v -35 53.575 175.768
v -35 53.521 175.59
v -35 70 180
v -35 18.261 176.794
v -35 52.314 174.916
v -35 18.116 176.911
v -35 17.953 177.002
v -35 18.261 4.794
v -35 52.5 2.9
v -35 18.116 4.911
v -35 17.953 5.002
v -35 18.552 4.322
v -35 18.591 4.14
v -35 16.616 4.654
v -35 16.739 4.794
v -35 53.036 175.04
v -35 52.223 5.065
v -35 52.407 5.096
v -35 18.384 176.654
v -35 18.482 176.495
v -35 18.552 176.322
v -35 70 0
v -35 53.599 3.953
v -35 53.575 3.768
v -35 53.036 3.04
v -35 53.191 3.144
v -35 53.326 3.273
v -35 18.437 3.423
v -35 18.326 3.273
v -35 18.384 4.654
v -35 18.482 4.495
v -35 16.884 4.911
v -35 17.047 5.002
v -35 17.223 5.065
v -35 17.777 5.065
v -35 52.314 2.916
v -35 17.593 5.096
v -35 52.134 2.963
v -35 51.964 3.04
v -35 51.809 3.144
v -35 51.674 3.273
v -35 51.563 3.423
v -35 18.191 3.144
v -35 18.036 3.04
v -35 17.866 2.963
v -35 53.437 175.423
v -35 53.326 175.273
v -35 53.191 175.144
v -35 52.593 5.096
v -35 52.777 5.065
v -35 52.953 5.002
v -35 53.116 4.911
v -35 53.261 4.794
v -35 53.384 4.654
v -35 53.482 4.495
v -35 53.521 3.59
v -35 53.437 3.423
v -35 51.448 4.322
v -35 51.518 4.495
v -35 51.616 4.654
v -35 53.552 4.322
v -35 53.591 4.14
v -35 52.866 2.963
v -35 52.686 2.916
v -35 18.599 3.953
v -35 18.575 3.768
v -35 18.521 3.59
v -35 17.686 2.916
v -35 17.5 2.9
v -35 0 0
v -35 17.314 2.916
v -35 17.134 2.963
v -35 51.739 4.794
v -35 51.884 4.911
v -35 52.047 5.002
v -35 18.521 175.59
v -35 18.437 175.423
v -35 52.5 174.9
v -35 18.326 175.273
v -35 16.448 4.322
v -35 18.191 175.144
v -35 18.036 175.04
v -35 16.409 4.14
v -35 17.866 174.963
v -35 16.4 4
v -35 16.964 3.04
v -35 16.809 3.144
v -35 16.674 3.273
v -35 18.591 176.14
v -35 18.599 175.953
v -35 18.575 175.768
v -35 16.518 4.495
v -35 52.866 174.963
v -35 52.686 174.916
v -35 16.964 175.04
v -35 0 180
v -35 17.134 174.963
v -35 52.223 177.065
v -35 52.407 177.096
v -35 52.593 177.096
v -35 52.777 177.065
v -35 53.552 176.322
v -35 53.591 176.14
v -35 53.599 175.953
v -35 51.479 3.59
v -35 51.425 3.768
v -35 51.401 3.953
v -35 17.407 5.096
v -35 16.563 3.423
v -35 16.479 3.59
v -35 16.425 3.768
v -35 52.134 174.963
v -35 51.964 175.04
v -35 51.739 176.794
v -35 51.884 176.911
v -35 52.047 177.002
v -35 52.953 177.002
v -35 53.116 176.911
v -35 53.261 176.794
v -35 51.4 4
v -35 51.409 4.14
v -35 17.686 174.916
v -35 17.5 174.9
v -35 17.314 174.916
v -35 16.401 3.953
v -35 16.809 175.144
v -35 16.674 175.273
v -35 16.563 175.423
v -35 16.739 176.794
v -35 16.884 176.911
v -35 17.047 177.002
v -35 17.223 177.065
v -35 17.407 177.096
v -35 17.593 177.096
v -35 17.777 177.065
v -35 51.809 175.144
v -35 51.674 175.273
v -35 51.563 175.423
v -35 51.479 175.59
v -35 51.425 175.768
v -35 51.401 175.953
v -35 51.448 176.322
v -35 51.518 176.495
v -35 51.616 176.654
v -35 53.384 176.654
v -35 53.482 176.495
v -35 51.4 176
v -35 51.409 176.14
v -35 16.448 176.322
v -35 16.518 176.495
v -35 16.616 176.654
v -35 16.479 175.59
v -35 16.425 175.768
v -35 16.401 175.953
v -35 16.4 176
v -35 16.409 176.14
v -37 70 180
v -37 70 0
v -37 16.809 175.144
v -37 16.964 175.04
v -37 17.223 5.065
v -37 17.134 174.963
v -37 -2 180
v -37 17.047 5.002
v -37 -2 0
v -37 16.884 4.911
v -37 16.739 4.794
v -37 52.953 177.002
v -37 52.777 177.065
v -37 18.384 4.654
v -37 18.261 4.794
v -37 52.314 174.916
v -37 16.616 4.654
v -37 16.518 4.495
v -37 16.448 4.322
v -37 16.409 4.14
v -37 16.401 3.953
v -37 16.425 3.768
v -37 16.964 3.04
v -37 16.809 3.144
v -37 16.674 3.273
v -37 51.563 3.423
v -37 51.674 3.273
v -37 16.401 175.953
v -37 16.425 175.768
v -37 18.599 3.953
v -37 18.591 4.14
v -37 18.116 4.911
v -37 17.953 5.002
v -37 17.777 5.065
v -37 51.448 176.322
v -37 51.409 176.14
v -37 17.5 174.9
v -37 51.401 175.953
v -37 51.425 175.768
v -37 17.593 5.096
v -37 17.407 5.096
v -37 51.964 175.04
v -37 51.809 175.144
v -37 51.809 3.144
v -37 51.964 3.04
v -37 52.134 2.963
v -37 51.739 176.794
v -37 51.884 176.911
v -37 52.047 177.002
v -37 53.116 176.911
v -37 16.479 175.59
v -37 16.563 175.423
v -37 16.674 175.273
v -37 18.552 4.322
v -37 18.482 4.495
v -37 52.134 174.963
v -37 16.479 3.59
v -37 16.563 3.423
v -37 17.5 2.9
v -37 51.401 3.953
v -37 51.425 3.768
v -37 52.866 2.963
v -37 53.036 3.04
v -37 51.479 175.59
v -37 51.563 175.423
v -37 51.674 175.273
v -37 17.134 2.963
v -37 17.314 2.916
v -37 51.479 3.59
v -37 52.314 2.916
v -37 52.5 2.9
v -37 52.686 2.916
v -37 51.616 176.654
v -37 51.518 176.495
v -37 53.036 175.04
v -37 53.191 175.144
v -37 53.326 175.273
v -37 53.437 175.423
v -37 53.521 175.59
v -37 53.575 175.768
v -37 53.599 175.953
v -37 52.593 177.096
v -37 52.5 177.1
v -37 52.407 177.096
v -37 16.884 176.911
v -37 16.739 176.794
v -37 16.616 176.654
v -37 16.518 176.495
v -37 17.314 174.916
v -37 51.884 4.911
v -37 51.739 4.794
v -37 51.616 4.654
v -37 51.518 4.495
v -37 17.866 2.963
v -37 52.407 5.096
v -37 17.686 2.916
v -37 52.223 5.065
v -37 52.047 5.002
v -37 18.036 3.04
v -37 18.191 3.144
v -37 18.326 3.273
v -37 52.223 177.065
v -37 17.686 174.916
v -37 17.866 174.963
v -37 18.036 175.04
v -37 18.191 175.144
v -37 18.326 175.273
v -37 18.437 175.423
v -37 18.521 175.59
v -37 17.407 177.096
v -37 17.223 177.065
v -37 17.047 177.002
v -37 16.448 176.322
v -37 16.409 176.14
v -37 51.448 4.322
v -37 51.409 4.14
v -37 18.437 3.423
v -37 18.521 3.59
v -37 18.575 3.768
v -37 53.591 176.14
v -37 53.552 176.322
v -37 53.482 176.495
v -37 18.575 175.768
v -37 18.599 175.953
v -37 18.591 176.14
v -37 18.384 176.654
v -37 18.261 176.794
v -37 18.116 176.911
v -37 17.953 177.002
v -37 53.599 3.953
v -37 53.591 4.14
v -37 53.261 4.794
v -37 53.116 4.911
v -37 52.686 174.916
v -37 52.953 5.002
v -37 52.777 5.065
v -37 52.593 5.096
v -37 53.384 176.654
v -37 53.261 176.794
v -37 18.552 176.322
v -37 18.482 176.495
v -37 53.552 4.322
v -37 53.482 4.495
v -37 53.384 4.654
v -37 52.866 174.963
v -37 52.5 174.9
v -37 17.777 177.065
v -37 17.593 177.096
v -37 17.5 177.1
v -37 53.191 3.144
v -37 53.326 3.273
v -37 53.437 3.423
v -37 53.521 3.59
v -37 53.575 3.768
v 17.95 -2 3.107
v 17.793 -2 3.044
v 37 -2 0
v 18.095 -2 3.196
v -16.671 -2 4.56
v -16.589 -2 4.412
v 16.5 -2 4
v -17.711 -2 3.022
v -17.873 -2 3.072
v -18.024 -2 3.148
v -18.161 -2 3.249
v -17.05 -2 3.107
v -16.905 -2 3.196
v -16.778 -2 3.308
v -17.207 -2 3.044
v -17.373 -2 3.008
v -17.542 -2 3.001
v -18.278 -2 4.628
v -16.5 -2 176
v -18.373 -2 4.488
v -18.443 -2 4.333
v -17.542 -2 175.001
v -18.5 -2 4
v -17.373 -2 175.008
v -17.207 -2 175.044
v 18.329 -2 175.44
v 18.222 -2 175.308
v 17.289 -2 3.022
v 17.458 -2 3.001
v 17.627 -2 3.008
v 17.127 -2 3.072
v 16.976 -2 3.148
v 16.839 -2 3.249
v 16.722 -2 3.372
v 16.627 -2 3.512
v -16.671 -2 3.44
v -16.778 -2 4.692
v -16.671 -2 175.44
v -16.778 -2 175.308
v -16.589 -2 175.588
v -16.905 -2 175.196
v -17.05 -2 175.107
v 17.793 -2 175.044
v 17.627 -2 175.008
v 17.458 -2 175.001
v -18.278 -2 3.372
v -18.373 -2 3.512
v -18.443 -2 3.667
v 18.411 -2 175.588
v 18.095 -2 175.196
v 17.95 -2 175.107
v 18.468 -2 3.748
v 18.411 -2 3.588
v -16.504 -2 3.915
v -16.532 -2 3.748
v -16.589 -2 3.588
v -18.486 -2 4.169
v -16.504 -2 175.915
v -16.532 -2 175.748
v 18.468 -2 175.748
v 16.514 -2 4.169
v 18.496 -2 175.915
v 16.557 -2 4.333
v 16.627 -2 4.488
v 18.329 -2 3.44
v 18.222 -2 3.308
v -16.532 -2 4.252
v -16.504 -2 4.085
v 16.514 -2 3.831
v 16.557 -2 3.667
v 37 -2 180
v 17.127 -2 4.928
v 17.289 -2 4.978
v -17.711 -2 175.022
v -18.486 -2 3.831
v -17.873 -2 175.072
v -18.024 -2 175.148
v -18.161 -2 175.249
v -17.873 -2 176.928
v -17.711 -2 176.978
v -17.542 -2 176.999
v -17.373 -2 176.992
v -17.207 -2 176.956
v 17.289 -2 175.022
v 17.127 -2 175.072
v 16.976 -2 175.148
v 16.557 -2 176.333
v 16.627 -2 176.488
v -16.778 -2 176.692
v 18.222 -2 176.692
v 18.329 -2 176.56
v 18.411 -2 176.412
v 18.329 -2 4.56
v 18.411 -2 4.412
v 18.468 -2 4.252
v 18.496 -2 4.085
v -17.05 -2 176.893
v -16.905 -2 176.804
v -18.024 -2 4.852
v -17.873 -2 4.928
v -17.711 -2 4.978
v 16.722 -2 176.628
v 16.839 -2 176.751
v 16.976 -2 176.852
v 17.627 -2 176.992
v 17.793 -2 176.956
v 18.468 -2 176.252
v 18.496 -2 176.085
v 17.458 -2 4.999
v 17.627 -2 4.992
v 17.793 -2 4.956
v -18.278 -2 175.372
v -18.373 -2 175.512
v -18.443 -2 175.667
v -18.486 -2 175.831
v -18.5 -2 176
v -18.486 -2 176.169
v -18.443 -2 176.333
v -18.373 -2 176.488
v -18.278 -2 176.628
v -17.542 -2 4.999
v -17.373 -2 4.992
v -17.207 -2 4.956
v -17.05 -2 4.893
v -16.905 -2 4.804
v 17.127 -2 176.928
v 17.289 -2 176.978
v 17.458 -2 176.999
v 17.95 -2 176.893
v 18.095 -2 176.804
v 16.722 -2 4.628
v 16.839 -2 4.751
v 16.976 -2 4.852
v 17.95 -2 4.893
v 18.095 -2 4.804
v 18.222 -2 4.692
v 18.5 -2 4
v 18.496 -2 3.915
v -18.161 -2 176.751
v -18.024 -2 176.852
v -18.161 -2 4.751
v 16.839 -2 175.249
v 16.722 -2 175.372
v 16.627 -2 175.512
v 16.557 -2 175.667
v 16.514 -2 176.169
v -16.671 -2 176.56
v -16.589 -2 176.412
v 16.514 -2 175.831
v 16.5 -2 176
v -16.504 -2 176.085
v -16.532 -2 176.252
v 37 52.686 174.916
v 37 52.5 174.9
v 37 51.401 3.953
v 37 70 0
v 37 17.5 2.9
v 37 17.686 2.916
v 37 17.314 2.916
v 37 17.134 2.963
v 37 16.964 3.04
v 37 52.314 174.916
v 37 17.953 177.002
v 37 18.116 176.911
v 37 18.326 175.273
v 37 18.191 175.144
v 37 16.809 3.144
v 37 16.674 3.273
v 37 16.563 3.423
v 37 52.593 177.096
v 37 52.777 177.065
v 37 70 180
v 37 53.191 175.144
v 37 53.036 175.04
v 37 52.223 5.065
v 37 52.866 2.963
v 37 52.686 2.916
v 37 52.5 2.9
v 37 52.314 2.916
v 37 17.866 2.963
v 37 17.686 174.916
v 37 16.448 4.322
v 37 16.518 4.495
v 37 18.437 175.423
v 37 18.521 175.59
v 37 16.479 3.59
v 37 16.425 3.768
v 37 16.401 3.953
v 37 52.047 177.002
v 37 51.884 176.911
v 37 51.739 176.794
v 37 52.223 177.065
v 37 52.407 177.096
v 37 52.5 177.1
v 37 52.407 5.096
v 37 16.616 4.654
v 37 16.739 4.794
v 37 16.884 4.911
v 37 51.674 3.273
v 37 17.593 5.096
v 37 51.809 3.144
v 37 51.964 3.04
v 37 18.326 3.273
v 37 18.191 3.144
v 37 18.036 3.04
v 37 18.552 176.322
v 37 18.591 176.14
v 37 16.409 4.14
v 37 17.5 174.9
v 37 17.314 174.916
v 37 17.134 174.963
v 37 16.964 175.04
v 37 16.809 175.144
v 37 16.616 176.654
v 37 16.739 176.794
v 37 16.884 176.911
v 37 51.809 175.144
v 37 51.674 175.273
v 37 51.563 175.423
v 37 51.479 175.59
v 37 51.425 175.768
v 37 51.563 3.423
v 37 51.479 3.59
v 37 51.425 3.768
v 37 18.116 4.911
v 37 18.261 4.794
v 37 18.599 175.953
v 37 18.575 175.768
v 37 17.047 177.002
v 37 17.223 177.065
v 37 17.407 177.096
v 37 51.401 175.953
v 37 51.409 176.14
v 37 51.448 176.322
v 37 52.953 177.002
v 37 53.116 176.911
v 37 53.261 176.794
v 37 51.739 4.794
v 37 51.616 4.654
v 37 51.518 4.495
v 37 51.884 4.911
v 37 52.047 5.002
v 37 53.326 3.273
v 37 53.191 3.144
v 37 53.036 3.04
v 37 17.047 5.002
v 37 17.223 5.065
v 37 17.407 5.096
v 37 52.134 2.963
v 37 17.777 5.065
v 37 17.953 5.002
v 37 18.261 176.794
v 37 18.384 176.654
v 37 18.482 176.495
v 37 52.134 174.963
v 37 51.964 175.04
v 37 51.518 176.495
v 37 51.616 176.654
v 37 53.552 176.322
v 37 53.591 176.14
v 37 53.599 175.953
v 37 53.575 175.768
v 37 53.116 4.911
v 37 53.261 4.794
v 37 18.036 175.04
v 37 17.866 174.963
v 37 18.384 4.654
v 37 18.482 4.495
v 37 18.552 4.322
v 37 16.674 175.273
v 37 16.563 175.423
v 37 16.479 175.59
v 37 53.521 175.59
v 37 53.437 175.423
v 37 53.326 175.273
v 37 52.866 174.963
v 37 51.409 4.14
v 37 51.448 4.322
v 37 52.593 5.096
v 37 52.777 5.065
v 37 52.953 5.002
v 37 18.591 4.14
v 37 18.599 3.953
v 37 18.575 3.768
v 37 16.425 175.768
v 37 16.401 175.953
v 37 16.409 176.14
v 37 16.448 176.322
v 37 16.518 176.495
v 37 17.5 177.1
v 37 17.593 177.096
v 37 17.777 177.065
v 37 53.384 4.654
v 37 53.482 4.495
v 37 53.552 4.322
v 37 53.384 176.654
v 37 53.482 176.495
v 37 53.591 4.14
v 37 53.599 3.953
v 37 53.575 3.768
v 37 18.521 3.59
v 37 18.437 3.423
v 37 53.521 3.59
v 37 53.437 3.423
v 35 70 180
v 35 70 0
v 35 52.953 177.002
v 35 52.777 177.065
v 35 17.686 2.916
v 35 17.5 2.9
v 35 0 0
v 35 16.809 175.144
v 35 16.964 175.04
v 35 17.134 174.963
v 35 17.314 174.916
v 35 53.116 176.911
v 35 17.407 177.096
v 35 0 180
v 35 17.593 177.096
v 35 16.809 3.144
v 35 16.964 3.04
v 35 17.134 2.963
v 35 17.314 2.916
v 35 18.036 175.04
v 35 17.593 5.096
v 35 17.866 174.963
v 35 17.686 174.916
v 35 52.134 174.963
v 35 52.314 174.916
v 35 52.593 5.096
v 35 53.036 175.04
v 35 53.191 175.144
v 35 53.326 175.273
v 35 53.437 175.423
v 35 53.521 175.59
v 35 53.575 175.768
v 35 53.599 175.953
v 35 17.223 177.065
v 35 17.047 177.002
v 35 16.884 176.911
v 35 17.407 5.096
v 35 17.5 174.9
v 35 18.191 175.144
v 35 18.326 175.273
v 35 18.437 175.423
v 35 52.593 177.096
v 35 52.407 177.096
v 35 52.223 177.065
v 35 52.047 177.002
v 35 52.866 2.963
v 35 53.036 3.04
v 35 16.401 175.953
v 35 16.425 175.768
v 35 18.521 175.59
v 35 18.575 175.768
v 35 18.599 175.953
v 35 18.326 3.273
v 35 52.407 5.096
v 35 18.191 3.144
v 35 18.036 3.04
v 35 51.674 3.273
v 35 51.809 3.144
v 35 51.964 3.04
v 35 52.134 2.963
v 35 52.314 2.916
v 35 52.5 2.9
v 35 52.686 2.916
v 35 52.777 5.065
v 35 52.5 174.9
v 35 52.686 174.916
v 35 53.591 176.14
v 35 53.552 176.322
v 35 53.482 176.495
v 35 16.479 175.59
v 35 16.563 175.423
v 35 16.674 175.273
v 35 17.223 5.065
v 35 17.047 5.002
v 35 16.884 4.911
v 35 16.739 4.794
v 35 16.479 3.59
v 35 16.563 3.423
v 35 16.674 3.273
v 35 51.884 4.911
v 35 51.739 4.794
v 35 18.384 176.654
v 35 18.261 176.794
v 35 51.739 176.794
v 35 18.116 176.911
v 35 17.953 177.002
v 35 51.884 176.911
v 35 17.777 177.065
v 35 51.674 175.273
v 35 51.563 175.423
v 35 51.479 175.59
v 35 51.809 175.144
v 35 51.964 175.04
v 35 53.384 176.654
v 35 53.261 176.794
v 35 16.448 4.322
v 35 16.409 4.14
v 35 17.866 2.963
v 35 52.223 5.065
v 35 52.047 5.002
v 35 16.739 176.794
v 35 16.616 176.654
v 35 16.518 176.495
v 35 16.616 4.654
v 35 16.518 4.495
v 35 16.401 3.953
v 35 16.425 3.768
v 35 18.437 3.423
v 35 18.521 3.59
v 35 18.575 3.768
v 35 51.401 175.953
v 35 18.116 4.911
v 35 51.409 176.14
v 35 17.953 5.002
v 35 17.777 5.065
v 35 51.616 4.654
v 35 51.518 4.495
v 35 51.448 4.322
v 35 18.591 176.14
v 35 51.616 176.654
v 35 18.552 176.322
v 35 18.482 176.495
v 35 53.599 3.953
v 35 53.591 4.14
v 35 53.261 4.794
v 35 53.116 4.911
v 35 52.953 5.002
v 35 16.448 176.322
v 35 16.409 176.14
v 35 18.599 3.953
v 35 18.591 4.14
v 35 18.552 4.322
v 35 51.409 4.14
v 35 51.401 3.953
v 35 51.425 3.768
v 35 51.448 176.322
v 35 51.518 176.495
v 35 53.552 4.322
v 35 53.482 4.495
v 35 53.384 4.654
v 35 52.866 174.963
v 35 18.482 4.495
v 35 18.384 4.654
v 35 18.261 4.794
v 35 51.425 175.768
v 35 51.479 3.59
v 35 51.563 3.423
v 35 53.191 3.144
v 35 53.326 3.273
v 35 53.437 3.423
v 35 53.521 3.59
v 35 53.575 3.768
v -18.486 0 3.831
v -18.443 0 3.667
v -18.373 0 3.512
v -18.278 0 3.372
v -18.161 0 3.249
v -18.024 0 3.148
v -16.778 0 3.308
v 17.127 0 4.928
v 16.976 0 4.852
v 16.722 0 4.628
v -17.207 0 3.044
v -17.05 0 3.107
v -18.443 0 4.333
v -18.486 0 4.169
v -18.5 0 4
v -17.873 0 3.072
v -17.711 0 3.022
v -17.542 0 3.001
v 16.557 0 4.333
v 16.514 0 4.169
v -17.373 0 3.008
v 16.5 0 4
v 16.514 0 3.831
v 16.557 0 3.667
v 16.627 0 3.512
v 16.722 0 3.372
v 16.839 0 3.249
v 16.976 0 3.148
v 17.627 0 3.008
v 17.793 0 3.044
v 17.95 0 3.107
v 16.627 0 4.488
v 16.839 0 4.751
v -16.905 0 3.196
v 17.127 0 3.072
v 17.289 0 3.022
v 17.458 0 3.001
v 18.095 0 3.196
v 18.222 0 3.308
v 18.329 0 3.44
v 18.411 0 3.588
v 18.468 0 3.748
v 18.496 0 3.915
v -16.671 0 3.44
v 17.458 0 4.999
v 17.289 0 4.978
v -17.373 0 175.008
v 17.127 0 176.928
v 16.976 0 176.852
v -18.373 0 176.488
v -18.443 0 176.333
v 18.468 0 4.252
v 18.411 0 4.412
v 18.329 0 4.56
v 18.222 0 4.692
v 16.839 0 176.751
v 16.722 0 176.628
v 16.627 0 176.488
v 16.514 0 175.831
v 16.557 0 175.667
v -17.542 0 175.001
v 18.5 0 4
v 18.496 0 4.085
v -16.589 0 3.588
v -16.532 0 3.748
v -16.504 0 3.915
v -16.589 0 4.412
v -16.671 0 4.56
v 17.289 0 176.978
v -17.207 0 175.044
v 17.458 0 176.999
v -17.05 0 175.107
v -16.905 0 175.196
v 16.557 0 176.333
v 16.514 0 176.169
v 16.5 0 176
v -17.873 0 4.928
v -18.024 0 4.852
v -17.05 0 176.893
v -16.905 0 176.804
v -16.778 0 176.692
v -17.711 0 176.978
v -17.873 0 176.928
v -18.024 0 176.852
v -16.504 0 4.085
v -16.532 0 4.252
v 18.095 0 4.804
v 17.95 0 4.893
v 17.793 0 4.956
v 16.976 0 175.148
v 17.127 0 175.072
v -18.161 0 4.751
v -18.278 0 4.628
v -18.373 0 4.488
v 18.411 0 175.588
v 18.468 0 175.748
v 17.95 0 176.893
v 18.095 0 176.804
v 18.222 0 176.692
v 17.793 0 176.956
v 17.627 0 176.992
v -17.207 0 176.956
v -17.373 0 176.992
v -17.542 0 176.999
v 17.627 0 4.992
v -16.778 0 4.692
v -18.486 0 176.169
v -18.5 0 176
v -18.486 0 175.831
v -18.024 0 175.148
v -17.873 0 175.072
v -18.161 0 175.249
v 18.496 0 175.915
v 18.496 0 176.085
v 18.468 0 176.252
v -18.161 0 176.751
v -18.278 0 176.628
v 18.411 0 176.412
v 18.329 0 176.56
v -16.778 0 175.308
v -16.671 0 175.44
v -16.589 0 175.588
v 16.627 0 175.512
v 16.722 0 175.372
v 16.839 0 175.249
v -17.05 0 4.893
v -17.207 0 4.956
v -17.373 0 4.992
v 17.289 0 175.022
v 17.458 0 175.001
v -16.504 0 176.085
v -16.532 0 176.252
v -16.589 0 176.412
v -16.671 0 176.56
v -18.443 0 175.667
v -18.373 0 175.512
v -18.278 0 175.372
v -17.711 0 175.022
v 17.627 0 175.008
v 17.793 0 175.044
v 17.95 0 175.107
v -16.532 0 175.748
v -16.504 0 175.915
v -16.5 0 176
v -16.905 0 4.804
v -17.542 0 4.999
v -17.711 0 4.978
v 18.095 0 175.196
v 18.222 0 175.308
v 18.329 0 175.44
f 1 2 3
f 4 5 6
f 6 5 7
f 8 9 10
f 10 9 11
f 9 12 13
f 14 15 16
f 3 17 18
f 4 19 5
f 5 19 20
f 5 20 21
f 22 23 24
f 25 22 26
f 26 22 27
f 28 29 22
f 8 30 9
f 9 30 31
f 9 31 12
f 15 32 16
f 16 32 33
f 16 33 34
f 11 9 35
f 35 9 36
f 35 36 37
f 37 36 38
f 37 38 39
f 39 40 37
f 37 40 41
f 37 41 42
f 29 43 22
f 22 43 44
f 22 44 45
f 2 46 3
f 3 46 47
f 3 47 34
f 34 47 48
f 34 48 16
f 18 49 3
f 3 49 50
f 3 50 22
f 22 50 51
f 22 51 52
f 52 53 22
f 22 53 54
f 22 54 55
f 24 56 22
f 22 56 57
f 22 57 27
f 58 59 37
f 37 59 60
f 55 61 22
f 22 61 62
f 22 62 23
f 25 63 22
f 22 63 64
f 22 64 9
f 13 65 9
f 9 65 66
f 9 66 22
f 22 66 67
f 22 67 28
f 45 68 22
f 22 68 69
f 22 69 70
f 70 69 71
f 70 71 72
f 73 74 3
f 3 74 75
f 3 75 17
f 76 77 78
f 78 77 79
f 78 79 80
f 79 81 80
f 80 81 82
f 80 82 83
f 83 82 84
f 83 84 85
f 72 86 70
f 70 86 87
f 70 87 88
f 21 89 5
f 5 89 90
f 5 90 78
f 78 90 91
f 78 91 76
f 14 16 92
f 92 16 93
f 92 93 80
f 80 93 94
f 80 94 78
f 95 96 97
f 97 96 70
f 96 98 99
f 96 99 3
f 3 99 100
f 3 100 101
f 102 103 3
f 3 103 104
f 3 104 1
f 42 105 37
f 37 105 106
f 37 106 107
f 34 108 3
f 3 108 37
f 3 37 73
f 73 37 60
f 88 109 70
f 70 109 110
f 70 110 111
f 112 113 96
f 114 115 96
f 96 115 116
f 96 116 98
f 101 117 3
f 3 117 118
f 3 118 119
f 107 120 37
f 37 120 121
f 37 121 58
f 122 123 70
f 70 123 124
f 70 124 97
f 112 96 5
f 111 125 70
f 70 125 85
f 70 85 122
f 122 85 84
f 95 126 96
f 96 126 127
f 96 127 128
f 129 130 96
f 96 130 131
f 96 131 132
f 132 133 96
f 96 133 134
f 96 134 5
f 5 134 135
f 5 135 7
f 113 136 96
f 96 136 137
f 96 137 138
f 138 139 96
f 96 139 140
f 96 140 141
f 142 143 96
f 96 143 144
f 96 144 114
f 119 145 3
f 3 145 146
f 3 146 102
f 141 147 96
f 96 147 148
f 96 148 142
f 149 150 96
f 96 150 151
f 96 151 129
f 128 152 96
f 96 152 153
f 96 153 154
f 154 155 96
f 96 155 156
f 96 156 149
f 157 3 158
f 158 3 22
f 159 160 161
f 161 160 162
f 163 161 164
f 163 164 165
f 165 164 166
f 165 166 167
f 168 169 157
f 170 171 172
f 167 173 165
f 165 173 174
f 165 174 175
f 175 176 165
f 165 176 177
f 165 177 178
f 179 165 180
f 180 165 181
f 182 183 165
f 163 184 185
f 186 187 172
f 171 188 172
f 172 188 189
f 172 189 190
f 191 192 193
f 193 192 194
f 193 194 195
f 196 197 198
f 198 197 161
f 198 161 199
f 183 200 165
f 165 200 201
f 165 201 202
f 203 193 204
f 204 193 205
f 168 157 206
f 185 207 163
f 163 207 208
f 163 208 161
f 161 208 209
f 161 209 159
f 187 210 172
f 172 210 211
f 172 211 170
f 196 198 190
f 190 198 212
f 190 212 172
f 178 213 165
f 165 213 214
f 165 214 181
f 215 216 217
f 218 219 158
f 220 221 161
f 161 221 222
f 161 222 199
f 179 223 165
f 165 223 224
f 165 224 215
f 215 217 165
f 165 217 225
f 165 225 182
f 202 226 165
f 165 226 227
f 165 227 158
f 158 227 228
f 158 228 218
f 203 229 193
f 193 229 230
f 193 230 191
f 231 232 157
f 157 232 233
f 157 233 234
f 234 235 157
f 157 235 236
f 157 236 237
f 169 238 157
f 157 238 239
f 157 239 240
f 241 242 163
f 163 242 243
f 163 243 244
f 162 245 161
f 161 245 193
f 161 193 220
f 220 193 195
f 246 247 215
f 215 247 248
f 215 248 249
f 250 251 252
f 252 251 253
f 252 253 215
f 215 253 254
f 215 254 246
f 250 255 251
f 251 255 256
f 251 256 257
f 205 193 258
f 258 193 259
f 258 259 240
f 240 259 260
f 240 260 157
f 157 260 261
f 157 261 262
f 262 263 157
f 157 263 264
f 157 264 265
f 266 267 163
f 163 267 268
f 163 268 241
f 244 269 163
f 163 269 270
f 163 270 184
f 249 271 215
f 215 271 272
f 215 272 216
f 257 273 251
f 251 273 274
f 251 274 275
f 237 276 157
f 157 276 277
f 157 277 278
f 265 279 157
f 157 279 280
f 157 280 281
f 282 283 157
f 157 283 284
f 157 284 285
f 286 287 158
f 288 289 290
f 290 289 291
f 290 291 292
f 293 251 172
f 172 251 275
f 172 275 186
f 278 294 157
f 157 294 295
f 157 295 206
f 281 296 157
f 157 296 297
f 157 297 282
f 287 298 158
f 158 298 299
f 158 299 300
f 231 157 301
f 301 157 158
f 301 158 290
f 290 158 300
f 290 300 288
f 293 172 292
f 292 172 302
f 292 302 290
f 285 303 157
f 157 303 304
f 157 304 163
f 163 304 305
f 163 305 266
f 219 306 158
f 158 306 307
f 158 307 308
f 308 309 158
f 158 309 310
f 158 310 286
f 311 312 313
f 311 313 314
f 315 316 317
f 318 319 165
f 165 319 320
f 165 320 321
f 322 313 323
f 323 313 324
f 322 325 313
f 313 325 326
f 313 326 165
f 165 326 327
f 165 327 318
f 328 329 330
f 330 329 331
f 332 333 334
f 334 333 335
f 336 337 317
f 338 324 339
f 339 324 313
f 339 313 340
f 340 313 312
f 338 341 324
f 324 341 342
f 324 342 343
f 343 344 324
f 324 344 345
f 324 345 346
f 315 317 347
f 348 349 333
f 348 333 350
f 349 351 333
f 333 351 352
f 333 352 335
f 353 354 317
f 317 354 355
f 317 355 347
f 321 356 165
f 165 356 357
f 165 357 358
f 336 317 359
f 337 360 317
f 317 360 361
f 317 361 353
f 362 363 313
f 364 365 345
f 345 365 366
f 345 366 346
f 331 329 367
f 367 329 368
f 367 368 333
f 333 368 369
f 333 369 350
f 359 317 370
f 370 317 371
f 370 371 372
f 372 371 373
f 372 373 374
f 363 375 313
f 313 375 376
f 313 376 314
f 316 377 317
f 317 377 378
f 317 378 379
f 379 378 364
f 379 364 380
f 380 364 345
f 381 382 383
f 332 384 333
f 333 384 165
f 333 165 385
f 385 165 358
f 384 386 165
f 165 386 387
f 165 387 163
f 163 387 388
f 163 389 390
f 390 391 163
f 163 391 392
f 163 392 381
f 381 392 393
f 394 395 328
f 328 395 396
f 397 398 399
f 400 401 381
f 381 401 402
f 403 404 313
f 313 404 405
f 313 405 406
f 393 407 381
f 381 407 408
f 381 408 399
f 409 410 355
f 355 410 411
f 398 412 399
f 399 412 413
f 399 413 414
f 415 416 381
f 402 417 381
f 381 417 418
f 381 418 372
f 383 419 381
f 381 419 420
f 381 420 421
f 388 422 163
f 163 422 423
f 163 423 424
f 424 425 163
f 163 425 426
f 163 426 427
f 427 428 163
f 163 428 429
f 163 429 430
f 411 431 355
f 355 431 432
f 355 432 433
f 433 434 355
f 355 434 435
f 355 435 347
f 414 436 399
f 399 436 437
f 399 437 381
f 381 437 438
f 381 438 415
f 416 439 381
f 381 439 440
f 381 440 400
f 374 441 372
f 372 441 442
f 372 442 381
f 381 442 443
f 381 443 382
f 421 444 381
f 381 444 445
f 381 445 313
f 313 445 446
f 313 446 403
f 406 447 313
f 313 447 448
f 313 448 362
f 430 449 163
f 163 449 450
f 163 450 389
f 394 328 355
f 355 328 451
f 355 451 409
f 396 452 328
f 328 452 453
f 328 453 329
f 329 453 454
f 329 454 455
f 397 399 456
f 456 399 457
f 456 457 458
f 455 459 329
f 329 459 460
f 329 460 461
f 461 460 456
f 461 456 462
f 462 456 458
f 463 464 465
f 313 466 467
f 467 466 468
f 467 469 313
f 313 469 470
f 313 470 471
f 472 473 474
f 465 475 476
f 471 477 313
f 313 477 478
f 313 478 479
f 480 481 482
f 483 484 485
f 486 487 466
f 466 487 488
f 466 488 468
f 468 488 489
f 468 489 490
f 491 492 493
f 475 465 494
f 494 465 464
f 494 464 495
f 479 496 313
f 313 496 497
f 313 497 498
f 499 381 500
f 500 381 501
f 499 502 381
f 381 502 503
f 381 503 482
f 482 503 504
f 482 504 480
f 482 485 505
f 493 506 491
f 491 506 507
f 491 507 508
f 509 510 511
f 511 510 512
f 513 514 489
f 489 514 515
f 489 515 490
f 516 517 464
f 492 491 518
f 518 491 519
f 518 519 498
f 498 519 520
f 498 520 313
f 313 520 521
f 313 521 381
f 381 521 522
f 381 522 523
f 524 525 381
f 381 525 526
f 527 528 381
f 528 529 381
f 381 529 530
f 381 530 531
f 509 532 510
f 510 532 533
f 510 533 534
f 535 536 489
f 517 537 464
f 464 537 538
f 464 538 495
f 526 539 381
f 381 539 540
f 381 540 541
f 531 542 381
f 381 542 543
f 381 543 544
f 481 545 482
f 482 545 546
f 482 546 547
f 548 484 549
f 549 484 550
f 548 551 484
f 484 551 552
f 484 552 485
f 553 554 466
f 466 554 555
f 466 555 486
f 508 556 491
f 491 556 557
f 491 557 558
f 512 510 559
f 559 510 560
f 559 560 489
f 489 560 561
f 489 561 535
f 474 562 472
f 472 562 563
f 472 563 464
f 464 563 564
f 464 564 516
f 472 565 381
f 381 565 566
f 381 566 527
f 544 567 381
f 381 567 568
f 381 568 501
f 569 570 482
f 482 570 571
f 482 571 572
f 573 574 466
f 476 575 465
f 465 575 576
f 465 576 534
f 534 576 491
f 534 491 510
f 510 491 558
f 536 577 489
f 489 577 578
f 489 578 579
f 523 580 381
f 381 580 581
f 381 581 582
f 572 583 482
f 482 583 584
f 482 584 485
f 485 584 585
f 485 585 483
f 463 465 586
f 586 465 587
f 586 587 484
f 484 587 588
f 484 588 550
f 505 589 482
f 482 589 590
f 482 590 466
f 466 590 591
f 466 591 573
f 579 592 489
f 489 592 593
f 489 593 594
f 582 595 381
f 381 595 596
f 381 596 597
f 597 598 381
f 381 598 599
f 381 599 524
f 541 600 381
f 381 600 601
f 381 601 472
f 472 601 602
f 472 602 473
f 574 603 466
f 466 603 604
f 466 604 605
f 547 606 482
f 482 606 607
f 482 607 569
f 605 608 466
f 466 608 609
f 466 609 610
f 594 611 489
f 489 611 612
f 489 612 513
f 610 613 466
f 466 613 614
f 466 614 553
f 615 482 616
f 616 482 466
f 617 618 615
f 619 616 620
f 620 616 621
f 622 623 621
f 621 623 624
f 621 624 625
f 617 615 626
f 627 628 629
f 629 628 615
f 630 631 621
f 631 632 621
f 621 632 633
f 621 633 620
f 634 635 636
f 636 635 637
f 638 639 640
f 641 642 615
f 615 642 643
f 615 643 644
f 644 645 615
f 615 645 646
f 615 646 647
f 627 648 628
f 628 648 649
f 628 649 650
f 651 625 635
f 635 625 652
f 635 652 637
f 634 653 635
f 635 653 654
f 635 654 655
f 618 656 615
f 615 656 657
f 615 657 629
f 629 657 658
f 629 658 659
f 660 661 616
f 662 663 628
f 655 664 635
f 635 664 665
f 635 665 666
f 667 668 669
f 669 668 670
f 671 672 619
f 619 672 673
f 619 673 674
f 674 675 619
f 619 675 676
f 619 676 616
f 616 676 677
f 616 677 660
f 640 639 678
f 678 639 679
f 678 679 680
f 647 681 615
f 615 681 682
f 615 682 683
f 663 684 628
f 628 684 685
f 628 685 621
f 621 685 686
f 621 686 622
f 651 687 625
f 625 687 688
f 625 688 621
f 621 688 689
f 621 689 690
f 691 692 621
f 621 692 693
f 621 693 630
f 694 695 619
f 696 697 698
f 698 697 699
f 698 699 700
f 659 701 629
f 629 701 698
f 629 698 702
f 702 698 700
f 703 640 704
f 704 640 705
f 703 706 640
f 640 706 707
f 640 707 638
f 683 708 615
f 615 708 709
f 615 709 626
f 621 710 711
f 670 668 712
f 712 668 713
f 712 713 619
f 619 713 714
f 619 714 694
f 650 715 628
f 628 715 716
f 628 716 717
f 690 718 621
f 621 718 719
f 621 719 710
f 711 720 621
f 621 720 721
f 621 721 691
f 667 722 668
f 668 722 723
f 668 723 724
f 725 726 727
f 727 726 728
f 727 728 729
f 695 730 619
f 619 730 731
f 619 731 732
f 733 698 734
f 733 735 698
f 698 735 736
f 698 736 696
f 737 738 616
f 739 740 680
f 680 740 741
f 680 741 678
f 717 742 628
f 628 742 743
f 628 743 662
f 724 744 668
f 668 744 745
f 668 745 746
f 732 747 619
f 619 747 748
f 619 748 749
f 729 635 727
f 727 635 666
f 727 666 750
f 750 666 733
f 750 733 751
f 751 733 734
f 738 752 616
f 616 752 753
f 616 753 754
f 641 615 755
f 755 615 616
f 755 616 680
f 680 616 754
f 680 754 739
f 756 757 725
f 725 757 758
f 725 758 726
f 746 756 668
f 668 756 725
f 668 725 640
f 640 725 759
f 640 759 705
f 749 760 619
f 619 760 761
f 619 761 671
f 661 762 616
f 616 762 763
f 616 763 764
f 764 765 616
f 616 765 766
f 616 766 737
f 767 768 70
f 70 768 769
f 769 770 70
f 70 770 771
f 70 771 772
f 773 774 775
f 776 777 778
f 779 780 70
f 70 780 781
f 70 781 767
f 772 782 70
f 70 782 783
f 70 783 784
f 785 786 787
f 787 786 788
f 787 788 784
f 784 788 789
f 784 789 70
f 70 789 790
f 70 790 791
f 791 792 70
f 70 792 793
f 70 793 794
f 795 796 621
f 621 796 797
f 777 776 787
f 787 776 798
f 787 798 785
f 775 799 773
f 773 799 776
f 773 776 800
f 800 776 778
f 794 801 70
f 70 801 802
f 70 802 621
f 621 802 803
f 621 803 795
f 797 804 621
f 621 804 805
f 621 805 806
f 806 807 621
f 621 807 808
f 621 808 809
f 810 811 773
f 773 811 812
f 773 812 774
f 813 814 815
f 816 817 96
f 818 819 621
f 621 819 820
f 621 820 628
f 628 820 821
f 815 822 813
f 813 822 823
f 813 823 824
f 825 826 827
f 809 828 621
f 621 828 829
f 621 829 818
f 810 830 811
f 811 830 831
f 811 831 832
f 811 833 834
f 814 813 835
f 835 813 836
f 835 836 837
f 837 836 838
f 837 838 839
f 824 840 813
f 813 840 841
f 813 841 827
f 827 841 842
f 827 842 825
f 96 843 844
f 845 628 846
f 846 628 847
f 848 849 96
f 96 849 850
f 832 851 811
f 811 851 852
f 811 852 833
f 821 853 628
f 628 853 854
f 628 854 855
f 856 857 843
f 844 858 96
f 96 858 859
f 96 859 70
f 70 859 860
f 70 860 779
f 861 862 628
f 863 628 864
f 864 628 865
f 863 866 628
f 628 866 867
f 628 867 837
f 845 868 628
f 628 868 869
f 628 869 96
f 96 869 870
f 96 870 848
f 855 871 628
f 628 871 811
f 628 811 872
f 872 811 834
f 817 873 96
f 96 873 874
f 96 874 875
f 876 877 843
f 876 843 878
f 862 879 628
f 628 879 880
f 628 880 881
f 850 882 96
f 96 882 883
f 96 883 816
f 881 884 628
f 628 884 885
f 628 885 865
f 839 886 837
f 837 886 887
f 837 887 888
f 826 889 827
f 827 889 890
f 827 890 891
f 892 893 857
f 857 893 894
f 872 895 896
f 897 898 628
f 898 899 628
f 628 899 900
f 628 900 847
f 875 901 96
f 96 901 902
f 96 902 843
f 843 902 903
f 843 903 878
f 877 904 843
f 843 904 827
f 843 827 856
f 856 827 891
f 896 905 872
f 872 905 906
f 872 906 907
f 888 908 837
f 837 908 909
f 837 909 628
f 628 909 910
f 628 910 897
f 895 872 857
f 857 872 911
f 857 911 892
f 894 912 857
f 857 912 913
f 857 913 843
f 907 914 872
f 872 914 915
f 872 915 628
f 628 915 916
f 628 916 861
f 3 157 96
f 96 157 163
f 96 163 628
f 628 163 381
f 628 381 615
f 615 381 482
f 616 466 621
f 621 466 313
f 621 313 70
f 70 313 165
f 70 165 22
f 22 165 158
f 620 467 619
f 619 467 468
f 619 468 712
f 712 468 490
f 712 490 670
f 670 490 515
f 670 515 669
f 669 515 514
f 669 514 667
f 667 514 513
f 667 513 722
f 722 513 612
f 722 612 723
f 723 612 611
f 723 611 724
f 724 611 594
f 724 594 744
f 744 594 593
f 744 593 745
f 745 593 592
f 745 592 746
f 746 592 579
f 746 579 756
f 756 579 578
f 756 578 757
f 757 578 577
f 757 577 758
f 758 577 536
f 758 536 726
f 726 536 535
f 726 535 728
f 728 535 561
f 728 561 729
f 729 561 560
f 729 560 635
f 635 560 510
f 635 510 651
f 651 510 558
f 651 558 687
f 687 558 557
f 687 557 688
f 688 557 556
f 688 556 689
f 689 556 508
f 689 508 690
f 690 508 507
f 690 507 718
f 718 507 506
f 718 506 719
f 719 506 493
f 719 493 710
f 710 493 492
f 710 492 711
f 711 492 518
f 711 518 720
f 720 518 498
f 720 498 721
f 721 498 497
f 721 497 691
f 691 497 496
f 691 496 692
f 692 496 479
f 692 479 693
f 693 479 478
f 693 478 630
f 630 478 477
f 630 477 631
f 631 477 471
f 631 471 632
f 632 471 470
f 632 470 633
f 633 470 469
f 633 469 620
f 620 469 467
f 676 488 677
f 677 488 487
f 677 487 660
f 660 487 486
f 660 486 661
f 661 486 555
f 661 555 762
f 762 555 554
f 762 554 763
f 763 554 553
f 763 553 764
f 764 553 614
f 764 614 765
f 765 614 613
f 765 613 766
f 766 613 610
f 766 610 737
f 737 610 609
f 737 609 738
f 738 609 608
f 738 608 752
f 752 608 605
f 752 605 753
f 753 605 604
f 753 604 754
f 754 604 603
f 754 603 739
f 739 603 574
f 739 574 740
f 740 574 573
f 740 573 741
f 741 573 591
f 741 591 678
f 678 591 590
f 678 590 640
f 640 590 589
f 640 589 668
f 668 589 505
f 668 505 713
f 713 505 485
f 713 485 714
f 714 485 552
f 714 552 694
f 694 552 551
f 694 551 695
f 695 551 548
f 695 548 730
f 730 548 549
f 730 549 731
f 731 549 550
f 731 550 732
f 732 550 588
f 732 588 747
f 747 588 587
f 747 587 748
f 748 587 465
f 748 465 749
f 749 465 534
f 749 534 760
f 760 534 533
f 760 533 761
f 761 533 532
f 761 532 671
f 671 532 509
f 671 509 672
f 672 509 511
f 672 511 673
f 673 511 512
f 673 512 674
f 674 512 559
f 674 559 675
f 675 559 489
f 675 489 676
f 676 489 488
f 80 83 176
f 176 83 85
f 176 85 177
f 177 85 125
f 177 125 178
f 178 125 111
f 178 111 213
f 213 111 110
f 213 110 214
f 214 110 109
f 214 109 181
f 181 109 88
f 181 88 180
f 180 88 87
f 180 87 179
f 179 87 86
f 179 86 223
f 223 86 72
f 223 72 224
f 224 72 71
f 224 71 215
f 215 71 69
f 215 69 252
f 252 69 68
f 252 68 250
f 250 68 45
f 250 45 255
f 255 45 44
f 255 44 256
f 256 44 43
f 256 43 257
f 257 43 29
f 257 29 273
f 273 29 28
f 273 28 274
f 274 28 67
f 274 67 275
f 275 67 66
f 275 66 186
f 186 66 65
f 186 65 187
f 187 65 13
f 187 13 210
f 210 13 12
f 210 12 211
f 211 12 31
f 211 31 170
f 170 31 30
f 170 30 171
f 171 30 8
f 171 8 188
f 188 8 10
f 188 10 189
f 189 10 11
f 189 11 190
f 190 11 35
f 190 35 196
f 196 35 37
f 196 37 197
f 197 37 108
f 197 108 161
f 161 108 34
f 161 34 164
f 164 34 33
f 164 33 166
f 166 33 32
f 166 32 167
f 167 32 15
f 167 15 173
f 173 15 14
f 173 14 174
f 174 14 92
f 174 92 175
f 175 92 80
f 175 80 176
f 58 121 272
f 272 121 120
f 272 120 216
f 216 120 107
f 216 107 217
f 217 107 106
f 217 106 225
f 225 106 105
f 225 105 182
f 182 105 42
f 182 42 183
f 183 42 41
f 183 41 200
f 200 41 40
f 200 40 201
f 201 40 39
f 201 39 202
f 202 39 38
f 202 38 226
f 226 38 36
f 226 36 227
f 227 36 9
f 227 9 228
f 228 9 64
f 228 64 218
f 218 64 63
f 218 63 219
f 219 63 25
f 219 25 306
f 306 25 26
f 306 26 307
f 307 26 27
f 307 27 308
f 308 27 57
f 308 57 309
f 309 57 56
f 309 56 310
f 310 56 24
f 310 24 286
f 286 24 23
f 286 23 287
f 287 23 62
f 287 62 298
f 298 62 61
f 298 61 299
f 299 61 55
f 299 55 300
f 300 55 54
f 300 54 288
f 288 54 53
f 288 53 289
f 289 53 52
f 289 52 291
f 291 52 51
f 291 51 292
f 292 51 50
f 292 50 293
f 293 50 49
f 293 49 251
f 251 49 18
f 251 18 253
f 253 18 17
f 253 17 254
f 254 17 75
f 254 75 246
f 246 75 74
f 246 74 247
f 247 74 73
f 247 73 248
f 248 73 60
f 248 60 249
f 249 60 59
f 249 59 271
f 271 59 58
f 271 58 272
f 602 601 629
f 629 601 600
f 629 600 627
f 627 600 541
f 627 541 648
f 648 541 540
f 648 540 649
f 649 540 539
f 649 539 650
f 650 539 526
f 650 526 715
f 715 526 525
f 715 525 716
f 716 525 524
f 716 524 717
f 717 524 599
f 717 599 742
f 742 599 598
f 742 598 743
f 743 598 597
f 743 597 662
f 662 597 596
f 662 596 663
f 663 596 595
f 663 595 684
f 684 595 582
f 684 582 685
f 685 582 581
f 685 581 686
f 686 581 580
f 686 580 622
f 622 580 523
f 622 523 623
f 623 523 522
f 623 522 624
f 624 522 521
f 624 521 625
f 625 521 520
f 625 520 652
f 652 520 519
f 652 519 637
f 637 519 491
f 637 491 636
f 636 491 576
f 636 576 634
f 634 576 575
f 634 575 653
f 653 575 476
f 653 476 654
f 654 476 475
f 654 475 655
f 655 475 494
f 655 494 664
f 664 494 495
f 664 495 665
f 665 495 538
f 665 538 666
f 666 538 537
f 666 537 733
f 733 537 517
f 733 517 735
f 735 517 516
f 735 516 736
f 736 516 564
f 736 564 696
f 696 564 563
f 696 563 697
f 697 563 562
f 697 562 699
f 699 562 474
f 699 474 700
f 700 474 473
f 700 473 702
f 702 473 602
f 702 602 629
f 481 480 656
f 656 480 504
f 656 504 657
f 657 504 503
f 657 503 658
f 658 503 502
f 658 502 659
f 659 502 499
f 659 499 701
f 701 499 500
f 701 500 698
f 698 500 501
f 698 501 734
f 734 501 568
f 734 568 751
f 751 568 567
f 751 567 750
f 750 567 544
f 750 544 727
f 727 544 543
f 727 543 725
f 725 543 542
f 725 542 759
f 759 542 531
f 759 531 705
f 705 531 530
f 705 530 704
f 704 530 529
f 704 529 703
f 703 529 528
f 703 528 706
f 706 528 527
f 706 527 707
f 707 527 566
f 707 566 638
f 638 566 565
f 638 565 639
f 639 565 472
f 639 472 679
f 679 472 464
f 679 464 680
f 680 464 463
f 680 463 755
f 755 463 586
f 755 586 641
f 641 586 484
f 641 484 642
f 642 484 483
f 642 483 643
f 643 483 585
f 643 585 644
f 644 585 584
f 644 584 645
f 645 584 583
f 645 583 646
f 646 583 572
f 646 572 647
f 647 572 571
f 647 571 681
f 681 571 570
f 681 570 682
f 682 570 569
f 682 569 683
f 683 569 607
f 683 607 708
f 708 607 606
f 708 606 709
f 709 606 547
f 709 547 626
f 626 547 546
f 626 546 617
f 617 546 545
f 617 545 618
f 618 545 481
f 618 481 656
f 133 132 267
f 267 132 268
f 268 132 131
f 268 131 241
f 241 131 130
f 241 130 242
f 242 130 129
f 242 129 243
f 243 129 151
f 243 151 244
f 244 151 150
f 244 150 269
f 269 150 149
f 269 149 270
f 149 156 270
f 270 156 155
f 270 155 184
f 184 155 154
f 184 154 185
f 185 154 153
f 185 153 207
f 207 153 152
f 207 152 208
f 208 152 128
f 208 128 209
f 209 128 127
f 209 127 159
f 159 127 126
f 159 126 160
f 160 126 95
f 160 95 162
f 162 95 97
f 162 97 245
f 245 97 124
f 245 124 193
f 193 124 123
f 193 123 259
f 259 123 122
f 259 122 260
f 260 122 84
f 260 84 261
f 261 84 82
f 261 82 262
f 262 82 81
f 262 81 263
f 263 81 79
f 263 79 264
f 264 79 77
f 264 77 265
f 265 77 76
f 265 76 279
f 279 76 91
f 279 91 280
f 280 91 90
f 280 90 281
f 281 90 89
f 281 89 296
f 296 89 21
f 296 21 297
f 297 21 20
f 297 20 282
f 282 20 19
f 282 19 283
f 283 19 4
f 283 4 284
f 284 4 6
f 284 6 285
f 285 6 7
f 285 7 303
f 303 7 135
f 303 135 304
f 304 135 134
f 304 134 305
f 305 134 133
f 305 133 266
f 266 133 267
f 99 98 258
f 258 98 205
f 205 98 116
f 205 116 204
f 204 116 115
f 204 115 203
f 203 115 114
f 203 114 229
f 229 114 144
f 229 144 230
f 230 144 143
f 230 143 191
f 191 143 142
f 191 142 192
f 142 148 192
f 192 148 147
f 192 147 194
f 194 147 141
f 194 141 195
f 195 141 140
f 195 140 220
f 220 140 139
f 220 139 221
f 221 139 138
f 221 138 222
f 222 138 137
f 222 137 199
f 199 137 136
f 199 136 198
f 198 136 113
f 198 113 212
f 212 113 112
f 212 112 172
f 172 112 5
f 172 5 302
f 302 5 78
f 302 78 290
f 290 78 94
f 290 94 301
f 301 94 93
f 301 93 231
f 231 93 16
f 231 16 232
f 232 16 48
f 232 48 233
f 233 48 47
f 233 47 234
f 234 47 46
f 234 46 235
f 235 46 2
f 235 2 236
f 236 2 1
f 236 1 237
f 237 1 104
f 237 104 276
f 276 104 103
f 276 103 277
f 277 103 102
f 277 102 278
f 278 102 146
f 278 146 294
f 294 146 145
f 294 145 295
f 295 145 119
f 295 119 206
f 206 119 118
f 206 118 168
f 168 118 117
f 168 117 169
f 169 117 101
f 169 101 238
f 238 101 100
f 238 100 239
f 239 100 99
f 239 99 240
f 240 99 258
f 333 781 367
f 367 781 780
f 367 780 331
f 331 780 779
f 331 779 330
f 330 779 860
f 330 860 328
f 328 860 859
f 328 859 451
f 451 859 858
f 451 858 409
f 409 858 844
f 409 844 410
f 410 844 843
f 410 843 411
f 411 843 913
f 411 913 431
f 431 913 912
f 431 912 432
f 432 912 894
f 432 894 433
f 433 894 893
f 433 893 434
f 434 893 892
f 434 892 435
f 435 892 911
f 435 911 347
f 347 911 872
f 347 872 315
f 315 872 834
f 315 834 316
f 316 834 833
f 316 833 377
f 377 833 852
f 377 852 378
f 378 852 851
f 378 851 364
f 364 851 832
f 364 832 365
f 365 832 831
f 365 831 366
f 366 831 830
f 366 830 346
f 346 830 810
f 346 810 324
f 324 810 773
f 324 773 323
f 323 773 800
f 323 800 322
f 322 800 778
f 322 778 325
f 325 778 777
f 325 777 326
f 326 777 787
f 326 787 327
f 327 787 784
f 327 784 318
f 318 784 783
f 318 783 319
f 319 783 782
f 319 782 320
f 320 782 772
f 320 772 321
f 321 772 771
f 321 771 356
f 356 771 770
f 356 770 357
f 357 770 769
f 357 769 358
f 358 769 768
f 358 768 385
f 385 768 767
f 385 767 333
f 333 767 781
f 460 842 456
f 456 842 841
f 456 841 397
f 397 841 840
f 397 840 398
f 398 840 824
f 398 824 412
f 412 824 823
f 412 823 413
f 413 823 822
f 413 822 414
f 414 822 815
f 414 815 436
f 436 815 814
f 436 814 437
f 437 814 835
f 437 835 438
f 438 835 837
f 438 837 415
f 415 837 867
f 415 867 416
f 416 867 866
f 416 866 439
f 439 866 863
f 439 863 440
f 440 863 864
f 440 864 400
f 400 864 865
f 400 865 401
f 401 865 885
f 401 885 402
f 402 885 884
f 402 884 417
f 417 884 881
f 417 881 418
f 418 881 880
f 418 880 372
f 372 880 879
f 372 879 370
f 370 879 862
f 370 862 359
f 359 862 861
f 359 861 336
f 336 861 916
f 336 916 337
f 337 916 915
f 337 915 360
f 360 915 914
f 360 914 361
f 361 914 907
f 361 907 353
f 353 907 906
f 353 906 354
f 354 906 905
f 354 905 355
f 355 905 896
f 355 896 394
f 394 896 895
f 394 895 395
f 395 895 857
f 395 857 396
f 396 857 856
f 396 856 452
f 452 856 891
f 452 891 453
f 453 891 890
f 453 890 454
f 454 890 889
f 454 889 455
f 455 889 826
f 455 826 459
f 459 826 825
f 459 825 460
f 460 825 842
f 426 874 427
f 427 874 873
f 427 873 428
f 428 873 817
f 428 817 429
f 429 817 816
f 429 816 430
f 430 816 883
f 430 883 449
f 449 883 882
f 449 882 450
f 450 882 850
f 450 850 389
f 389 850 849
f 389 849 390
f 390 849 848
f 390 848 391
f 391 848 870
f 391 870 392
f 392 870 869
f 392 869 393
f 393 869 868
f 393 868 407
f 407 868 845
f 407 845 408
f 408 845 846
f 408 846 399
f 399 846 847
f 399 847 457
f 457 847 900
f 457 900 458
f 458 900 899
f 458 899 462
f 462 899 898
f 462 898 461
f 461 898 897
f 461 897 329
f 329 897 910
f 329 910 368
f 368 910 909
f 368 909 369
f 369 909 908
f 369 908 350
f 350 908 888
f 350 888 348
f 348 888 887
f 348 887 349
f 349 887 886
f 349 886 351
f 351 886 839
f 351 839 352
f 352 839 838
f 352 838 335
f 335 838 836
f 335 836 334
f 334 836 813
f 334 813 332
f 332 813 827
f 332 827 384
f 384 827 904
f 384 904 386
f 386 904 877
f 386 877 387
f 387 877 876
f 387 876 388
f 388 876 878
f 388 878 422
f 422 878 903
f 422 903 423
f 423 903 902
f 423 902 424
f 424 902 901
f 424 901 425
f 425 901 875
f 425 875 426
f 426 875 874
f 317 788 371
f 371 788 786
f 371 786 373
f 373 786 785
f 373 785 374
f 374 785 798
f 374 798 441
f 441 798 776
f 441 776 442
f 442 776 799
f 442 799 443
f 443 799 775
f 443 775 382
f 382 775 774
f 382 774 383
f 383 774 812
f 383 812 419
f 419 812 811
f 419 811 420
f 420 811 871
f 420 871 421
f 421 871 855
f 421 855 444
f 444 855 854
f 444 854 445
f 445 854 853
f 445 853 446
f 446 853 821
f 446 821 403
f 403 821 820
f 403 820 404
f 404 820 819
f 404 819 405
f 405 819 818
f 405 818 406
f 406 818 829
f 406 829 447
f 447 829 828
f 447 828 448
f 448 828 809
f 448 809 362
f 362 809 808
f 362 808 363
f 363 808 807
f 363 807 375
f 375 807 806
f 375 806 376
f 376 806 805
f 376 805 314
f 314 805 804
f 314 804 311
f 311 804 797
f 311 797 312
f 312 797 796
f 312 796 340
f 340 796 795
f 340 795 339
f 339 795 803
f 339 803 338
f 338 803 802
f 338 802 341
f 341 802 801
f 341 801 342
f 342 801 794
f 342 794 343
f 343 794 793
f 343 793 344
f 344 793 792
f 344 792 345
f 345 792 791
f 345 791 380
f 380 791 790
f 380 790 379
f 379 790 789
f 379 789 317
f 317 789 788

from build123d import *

# Parameters (mm, degrees)
EXTRUDE_3_DEPTH     = 180
SKETCH_3_R          = 1.1
CUT_EXTRUDE_1_DEPTH = 207.823596333
SKETCH_4_R          = 1
CUT_EXTRUDE_2_DEPTH = 197.644349016


with BuildPart() as part:
    # 草图2 → 凸台-拉伸3 (new body)
    with BuildSketch(Plane.XY):
        Polygon((-35, 0), (35, 0), (35, 70), (37, 70), (37, -2), (-37, -2), (-37, 70), (-35, 70), align=None)
    extrude(amount=EXTRUDE_3_DEPTH)

    # 草图3 → 切除-拉伸1 (cut, through all)
    with BuildSketch(Plane(origin=(37, 0, 0), x_dir=(0, 0, -1), z_dir=(1, 0, 0))):
        with Locations((-4, 52.5)):
            Circle(SKETCH_3_R)
        with Locations((-4, 17.5)):
            Circle(SKETCH_3_R)
    cut_extrude_1 = extrude(amount=-CUT_EXTRUDE_1_DEPTH, mode=Mode.SUBTRACT)

    # 镜向1: 切除-拉伸1 across plane
    add(cut_extrude_1.mirror(Plane(origin=(0, 0, 90), x_dir=(1, 0, 0), z_dir=(0, 0, -1))), mode=Mode.SUBTRACT)

    # 草图4 → 切除-拉伸2 (cut, through all)
    with BuildSketch(Plane(origin=(0, 0, 0), x_dir=(1, 0, 0), z_dir=(0, 1, 0))):
        with Locations(Location((-17.5, -4, 0), (0, 0, 180))):
            Circle(SKETCH_4_R)
        with Locations((17.5, -4)):
            Circle(SKETCH_4_R)
        with Locations((-17.5, -176)):
            Circle(SKETCH_4_R)
        with Locations(Location((17.5, -176, 0), (0, 0, 180))):
            Circle(SKETCH_4_R)
    extrude(amount=-CUT_EXTRUDE_2_DEPTH, mode=Mode.SUBTRACT)


solid = part.part
